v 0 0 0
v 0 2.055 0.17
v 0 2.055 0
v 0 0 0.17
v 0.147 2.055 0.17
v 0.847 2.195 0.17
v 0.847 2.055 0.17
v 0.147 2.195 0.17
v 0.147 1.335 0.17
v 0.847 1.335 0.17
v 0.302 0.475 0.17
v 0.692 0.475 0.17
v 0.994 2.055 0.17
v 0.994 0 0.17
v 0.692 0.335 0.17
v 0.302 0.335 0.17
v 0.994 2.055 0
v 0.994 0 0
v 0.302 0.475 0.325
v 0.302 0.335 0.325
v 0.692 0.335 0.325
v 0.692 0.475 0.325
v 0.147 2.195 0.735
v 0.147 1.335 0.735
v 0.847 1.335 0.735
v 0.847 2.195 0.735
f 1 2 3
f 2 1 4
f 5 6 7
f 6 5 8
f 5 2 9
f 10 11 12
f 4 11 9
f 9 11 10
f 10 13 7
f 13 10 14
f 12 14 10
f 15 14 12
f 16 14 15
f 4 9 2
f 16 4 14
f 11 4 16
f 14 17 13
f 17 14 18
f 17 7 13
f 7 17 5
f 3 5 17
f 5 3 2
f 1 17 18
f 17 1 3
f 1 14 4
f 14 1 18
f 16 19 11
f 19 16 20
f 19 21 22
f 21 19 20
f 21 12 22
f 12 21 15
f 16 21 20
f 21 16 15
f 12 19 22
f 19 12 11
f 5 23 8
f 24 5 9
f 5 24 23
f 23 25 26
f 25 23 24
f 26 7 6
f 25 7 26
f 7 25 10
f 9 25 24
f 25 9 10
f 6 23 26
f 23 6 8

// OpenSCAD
cube([0.994,2.055,0.17]);
translate([0.302,0.335,0.17])
    cube([0.39,0.14,0.155]);
translate([0.147,1.335,0.17])
    cube([0.7,0.86,0.565]);
